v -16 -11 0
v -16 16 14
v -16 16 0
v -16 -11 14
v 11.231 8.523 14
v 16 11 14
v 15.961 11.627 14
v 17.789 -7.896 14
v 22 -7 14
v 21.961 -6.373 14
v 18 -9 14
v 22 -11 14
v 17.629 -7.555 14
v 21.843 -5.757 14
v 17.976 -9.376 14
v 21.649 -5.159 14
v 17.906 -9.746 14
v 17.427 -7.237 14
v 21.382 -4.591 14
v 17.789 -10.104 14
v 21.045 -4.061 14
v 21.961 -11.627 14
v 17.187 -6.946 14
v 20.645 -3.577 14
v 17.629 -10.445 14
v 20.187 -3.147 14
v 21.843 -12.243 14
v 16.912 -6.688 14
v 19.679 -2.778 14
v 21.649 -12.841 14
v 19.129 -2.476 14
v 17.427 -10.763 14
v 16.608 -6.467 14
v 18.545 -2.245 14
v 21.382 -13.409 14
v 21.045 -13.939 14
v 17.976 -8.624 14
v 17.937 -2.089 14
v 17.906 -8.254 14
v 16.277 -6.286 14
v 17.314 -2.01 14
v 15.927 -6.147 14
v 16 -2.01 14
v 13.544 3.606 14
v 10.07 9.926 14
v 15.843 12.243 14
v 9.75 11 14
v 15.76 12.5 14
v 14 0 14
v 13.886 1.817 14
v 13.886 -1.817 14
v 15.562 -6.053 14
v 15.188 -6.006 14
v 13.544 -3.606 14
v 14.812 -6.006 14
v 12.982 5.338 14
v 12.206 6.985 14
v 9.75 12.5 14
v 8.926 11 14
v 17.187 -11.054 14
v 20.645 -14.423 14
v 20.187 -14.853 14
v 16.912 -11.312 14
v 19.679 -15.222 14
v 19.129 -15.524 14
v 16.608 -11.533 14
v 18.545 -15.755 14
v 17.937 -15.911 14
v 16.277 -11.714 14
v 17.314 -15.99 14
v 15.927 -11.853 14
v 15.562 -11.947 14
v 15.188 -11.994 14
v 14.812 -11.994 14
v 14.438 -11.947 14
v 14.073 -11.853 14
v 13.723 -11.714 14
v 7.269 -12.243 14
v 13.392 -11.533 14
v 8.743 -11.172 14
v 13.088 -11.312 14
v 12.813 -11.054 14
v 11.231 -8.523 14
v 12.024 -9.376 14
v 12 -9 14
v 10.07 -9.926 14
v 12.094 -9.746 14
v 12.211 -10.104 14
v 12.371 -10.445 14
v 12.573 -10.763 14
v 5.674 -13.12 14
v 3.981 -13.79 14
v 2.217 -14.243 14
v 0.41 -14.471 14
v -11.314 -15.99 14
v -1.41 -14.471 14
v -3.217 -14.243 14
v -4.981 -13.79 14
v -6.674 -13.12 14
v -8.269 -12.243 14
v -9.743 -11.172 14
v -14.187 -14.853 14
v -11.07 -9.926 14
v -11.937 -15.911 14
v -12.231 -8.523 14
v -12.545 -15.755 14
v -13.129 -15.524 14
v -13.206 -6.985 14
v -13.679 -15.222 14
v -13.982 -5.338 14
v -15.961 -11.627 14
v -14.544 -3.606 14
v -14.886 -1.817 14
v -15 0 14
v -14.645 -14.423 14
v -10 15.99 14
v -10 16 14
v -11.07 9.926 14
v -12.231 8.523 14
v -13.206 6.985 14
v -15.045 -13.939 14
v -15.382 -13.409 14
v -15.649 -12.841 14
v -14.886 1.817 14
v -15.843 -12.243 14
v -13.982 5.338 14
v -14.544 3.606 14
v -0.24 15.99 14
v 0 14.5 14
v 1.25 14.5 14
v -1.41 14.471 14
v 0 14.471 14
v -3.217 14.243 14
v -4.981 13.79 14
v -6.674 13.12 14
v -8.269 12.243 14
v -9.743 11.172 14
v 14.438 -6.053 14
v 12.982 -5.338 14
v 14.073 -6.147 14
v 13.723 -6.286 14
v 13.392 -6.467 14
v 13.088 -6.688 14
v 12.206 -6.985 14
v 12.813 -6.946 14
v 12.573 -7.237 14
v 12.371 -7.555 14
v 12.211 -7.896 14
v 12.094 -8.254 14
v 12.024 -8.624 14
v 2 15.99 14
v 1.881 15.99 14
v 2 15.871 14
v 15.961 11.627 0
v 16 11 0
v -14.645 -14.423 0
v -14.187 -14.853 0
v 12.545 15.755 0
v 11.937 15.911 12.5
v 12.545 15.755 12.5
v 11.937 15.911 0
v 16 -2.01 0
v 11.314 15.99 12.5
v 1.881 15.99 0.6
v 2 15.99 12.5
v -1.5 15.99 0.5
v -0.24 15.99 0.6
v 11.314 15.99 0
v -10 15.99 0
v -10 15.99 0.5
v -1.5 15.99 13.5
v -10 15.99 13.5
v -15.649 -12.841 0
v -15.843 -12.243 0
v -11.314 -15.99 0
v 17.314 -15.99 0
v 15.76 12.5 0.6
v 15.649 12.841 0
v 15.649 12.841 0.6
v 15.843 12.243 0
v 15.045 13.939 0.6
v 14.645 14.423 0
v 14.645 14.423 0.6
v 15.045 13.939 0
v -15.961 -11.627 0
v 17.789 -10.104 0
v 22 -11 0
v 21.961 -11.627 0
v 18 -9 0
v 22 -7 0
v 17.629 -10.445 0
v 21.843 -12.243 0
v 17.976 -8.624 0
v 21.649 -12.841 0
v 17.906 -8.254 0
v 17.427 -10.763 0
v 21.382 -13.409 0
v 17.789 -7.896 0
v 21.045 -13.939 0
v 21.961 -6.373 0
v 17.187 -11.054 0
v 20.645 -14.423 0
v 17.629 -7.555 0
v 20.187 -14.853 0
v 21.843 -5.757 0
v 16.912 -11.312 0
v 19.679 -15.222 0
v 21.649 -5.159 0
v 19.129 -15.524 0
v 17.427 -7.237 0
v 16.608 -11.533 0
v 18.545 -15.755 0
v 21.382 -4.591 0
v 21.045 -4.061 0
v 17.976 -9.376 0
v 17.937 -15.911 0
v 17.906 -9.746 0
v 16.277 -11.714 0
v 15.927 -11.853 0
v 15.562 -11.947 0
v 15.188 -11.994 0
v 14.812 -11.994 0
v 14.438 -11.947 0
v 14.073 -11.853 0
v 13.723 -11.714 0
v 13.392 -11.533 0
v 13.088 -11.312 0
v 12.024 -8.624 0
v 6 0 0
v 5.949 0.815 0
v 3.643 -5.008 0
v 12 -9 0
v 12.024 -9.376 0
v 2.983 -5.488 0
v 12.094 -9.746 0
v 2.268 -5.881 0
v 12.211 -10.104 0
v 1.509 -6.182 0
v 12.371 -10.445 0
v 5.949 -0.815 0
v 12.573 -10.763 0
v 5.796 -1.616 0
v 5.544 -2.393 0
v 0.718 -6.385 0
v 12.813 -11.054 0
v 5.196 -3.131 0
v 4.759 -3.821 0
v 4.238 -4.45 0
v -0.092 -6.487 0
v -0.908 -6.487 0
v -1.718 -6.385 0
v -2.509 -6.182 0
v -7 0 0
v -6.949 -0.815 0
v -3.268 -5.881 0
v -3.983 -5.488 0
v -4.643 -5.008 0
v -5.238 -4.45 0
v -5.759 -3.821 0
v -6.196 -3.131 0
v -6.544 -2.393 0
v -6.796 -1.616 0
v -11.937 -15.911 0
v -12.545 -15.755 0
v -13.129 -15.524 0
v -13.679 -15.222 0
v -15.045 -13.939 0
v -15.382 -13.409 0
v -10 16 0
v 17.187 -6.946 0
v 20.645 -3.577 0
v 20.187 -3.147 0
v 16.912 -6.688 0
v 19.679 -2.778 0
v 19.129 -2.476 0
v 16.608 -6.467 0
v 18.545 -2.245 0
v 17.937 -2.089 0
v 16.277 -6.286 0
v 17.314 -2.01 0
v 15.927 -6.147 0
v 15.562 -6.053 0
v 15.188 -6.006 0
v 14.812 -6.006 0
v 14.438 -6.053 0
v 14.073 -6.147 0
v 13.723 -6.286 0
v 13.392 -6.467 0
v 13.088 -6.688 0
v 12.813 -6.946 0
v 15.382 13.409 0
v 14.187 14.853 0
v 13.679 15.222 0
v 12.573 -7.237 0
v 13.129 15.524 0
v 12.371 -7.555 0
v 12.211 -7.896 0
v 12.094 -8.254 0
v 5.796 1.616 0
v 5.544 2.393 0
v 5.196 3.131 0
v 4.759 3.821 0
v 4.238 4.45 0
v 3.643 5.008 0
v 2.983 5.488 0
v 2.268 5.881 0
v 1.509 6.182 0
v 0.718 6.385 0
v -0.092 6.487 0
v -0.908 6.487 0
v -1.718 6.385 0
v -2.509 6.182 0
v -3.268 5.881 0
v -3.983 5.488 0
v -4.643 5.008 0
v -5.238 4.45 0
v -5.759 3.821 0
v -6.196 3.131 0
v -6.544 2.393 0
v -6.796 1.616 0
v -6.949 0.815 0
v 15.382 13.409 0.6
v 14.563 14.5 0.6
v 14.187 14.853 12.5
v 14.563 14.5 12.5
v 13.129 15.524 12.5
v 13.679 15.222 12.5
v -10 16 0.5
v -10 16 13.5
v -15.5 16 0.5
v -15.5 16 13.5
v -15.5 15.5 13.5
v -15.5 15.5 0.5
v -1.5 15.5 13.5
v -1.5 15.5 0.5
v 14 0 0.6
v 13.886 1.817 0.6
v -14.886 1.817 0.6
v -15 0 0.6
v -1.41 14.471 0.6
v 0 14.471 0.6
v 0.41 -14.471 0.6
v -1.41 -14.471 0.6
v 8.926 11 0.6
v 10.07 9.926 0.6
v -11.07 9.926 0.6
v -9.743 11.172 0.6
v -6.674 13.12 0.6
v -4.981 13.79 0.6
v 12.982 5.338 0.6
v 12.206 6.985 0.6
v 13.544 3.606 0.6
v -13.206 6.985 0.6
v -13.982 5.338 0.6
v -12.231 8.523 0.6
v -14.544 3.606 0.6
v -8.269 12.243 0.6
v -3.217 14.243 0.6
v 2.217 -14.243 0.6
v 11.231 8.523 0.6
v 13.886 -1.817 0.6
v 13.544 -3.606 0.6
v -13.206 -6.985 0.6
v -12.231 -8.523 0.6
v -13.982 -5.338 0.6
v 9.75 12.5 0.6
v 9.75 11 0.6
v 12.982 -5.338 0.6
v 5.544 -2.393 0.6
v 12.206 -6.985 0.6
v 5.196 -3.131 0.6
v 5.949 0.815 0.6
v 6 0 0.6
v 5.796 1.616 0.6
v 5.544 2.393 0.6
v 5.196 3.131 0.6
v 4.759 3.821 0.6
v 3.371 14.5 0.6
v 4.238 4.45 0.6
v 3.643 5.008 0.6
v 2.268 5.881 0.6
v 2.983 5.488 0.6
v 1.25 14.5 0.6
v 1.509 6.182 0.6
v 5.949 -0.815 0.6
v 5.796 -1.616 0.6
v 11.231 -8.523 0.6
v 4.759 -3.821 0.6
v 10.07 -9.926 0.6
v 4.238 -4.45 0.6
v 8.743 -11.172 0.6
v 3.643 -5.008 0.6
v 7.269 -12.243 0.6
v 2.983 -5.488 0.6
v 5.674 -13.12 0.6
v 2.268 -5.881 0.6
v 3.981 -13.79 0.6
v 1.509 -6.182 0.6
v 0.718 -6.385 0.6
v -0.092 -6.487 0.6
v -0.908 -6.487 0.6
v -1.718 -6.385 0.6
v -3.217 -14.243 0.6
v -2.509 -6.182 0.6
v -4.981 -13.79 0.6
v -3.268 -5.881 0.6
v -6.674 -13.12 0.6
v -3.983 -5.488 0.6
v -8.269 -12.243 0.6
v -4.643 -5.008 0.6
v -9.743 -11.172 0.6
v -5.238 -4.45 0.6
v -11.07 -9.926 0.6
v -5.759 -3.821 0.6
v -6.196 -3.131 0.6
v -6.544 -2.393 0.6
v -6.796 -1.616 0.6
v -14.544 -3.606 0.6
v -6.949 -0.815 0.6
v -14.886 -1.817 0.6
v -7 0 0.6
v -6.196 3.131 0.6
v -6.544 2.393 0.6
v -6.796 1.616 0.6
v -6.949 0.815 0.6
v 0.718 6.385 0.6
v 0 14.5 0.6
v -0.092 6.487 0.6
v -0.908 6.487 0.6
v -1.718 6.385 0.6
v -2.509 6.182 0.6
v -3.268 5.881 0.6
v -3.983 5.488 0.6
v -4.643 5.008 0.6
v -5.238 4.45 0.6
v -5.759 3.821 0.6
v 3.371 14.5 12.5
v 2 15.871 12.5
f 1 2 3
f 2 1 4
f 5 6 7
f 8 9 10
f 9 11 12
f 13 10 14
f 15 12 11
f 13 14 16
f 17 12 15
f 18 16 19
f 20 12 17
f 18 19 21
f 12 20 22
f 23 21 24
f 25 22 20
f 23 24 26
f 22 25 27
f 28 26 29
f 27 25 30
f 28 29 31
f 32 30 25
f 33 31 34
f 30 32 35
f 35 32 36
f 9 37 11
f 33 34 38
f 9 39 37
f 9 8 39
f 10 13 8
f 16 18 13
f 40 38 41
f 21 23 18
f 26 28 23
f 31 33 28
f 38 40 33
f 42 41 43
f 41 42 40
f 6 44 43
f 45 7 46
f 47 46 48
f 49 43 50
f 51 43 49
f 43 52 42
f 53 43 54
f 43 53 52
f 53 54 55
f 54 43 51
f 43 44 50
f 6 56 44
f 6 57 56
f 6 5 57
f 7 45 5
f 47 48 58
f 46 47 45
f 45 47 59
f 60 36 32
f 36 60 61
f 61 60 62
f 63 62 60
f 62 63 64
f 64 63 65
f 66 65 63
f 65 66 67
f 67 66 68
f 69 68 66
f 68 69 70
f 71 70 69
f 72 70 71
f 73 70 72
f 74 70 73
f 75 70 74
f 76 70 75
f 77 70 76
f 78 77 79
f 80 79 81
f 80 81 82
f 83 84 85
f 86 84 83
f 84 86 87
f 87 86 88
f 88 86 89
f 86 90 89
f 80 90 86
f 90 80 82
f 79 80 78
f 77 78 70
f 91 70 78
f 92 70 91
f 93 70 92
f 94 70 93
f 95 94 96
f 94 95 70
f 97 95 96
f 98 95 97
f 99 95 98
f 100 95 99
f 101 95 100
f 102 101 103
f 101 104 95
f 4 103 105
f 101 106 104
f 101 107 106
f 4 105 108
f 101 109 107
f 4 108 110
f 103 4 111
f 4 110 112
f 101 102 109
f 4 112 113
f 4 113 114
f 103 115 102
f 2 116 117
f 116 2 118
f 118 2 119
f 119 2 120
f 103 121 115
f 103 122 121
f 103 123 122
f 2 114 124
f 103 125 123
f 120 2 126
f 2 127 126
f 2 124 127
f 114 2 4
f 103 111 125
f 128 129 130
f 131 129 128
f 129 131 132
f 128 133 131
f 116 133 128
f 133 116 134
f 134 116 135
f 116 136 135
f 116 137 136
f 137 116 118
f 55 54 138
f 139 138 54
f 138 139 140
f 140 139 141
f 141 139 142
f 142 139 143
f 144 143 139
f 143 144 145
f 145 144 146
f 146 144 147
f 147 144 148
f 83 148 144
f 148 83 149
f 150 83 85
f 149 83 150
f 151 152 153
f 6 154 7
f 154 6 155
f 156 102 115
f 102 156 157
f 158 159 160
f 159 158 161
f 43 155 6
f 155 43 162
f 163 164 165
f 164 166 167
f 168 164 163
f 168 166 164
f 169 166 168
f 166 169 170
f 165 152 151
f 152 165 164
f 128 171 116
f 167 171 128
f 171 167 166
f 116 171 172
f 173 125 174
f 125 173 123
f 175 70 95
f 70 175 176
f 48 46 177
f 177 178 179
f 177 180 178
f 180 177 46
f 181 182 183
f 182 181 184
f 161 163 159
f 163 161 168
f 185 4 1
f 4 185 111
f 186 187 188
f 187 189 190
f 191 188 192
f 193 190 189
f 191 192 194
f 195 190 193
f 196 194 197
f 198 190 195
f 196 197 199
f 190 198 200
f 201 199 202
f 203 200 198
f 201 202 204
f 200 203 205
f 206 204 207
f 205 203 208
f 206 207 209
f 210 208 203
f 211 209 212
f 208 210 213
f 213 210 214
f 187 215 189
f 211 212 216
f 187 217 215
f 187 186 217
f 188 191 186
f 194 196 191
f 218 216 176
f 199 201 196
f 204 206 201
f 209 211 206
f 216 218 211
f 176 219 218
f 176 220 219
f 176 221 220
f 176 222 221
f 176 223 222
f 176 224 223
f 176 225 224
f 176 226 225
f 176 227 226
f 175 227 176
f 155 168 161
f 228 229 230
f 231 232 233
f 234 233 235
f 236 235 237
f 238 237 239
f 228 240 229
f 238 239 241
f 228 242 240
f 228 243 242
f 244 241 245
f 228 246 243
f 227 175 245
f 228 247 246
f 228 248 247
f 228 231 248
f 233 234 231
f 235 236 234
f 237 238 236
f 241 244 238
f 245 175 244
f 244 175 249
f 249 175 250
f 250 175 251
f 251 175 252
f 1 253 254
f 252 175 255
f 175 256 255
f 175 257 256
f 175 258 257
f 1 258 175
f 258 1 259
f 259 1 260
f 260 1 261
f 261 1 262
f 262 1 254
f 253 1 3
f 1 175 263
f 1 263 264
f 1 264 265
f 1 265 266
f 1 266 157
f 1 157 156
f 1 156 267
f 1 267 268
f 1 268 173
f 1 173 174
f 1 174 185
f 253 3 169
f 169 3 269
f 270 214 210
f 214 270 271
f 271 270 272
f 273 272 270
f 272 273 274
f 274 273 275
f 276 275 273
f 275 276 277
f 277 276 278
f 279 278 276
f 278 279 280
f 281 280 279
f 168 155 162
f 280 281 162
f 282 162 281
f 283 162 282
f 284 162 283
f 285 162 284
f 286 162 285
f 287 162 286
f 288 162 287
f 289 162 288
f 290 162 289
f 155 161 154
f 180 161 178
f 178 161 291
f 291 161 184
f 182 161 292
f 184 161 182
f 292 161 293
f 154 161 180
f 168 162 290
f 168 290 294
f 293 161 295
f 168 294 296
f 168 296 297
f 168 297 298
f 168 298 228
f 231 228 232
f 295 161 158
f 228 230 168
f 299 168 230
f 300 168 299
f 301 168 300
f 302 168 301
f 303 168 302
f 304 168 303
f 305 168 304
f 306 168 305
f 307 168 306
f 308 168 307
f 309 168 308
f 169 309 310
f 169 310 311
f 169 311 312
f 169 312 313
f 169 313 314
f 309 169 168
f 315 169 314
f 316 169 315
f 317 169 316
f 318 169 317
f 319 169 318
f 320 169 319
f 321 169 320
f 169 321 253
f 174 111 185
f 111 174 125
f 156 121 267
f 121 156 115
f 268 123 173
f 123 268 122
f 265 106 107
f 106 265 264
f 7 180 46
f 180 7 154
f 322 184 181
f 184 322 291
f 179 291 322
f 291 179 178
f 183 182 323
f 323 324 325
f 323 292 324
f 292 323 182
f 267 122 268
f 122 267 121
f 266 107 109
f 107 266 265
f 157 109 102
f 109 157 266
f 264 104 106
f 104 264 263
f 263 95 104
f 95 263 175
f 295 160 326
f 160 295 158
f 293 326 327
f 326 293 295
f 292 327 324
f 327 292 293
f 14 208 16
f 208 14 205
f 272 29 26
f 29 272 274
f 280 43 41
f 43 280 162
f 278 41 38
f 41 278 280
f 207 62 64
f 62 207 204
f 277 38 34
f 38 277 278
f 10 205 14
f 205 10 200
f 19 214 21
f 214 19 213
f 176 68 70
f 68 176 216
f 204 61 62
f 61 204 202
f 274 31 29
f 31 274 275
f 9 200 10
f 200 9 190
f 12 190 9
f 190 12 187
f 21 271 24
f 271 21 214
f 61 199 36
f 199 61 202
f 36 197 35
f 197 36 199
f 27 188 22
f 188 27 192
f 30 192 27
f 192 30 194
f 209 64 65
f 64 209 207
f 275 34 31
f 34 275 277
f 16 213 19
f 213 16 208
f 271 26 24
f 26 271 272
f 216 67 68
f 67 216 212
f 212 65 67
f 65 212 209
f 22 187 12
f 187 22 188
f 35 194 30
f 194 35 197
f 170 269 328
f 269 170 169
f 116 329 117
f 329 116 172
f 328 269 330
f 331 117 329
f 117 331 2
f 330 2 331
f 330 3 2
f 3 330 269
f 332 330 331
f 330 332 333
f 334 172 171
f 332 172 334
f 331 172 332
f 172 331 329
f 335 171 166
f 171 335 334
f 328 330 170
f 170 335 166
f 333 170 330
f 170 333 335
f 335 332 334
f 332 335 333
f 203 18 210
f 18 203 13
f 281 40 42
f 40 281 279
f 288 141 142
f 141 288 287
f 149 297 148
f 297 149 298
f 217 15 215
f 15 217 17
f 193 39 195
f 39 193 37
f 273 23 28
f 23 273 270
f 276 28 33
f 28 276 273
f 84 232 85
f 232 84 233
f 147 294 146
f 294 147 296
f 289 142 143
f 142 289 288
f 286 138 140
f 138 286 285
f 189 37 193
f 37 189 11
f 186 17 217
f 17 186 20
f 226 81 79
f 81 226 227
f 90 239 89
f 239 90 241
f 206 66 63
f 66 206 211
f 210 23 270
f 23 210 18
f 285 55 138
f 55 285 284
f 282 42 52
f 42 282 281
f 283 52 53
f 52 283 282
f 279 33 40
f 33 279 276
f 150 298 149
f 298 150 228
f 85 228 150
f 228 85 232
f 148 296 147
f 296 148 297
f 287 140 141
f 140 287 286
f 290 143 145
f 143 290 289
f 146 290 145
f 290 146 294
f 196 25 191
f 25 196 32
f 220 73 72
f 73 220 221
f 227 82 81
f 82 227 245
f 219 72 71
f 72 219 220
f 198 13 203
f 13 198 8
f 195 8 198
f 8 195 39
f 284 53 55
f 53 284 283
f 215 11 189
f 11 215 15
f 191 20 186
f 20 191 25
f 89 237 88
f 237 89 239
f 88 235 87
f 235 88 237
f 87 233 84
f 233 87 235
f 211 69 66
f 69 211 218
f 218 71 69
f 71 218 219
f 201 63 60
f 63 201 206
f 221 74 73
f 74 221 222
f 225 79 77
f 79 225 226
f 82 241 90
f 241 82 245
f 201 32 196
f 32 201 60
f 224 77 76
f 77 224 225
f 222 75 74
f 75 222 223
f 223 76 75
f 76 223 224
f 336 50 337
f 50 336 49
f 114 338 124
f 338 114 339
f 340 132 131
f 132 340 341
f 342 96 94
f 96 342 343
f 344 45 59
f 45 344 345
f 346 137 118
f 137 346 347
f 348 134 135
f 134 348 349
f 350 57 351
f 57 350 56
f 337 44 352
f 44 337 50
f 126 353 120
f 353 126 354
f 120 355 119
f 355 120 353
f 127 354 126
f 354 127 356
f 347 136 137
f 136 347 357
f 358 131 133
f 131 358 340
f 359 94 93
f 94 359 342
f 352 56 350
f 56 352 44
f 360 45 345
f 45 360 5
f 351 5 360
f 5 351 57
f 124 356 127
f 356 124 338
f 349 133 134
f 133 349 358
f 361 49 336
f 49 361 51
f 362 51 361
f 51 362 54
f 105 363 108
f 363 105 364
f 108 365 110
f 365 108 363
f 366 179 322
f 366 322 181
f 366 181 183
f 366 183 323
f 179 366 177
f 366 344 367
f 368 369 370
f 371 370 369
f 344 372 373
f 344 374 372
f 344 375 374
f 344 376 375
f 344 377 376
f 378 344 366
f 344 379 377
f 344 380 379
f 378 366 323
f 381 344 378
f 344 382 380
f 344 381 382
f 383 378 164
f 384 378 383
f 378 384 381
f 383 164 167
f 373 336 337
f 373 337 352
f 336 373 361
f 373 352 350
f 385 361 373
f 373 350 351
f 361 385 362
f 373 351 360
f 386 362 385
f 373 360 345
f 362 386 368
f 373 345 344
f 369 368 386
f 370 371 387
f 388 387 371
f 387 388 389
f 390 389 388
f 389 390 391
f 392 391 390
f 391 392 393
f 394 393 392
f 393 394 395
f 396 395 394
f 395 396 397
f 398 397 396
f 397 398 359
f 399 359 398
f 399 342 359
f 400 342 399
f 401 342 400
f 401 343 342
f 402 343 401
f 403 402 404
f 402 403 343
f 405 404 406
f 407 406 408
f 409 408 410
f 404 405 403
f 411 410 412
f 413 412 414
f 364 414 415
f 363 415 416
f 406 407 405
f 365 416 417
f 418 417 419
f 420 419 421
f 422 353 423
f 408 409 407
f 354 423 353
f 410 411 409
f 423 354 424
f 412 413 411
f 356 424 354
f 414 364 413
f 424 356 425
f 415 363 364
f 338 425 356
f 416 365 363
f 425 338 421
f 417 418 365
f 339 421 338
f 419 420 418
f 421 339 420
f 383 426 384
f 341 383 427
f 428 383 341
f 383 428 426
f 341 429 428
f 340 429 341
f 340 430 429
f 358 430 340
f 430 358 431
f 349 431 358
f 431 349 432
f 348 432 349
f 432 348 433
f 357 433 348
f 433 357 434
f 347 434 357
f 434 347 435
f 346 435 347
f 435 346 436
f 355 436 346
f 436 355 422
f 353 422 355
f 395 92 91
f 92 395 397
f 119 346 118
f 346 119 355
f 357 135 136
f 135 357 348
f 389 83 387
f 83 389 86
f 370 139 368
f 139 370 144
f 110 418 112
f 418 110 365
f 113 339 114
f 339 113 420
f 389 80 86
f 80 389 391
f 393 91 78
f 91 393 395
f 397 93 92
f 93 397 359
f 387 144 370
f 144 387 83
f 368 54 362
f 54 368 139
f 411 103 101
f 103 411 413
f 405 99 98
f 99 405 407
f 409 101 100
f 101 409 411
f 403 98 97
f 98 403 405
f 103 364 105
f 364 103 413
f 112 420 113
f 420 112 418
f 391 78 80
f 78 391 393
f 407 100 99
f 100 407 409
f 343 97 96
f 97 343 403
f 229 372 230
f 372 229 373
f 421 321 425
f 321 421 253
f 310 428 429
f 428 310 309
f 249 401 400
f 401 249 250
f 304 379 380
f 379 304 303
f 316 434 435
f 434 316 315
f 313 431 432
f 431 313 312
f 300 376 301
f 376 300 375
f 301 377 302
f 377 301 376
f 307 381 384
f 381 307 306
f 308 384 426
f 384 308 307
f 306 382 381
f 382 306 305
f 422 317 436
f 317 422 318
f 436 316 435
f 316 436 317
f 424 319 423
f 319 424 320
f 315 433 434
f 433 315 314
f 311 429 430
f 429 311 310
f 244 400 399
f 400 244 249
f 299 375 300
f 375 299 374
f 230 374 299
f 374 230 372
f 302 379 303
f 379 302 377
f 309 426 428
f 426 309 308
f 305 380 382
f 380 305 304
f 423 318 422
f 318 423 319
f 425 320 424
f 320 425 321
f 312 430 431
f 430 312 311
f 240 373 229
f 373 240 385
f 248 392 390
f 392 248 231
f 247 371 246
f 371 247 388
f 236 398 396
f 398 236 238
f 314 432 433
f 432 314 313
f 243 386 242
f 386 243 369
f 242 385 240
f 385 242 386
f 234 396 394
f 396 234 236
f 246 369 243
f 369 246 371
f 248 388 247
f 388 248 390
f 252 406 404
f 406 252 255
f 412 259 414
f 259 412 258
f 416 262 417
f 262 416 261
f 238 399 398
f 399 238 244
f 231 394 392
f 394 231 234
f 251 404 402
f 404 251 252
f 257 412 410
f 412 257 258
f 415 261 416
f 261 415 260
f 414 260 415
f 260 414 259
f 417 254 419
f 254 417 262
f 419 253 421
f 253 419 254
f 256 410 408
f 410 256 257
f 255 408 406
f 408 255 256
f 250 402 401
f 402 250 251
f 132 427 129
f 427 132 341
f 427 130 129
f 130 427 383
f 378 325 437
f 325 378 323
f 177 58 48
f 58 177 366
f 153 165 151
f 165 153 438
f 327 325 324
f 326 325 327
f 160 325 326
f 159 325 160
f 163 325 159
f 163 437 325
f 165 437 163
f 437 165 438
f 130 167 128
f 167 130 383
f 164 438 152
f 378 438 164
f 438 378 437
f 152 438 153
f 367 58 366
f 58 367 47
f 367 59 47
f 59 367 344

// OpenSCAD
$fn = 50;


difference() {
	union() {
		hull() {
			translate(v = [-11.0000000000, 11.0000000000, 0]) {
				cylinder(h = 14, r = 5);
			}
			translate(v = [11.0000000000, 11.0000000000, 0]) {
				cylinder(h = 14, r = 5);
			}
			translate(v = [-11.0000000000, -11.0000000000, 0]) {
				cylinder(h = 14, r = 5);
			}
			translate(v = [11.0000000000, -11.0000000000, 0]) {
				cylinder(h = 14, r = 5);
			}
		}
		translate(v = [7.5000000000, -9.0000000000, 0]) {
			hull() {
				translate(v = [-9.5000000000, 2.0000000000, 0]) {
					cylinder(h = 14, r = 5);
				}
				translate(v = [9.5000000000, 2.0000000000, 0]) {
					cylinder(h = 14, r = 5);
				}
				translate(v = [-9.5000000000, -2.0000000000, 0]) {
					cylinder(h = 14, r = 5);
				}
				translate(v = [9.5000000000, -2.0000000000, 0]) {
					cylinder(h = 14, r = 5);
				}
			}
		}
		translate(v = [-16.0000000000, 10.0000000000, 0]) {
			cube(size = [6, 6, 14]);
		}
	}
	union() {
		translate(v = [-15.5000000000, 15.5000000000, 0.5000000000]) {
			cube(size = [14, 0.5000000000, 13.0000000000]);
		}
		translate(v = [15.0000000000, -9.0000000000, -50.0000000000]) {
			cylinder(h = 100, r = 3.0000000000);
		}
		translate(v = [-0.5000000000, 0.0000000000, 0.6000000000]) {
			cylinder(h = 16.4000000000, r = 14.5000000000);
		}
		translate(v = [-0.5000000000, 0.0000000000, -7.0000000000]) {
			cylinder(h = 14, r = 6.5000000000);
		}
		translate(v = [0.0000000000, 12.5000000000, 0.6000000000]) {
			cube(size = [16.0000000000, 2, 16.4000000000]);
		}
		translate(v = [2.0000000000, 12.5000000000, 12.5000000000]) {
			cube(size = [14.0000000000, 5, 1.5000000000]);
		}
		translate(v = [-3.0000000000, 18.7500000000, 0.6000000000]) {
			rotate(a = [0, 0, -45]) {
				cube(size = [10, 1.5000000000, 16.4000000000]);
			}
		}
		translate(v = [2.2500000000, 11.0000000000, 0.6000000000]) {
			cube(size = [7.5000000000, 2, 13.4000000000]);
		}
	}
}
